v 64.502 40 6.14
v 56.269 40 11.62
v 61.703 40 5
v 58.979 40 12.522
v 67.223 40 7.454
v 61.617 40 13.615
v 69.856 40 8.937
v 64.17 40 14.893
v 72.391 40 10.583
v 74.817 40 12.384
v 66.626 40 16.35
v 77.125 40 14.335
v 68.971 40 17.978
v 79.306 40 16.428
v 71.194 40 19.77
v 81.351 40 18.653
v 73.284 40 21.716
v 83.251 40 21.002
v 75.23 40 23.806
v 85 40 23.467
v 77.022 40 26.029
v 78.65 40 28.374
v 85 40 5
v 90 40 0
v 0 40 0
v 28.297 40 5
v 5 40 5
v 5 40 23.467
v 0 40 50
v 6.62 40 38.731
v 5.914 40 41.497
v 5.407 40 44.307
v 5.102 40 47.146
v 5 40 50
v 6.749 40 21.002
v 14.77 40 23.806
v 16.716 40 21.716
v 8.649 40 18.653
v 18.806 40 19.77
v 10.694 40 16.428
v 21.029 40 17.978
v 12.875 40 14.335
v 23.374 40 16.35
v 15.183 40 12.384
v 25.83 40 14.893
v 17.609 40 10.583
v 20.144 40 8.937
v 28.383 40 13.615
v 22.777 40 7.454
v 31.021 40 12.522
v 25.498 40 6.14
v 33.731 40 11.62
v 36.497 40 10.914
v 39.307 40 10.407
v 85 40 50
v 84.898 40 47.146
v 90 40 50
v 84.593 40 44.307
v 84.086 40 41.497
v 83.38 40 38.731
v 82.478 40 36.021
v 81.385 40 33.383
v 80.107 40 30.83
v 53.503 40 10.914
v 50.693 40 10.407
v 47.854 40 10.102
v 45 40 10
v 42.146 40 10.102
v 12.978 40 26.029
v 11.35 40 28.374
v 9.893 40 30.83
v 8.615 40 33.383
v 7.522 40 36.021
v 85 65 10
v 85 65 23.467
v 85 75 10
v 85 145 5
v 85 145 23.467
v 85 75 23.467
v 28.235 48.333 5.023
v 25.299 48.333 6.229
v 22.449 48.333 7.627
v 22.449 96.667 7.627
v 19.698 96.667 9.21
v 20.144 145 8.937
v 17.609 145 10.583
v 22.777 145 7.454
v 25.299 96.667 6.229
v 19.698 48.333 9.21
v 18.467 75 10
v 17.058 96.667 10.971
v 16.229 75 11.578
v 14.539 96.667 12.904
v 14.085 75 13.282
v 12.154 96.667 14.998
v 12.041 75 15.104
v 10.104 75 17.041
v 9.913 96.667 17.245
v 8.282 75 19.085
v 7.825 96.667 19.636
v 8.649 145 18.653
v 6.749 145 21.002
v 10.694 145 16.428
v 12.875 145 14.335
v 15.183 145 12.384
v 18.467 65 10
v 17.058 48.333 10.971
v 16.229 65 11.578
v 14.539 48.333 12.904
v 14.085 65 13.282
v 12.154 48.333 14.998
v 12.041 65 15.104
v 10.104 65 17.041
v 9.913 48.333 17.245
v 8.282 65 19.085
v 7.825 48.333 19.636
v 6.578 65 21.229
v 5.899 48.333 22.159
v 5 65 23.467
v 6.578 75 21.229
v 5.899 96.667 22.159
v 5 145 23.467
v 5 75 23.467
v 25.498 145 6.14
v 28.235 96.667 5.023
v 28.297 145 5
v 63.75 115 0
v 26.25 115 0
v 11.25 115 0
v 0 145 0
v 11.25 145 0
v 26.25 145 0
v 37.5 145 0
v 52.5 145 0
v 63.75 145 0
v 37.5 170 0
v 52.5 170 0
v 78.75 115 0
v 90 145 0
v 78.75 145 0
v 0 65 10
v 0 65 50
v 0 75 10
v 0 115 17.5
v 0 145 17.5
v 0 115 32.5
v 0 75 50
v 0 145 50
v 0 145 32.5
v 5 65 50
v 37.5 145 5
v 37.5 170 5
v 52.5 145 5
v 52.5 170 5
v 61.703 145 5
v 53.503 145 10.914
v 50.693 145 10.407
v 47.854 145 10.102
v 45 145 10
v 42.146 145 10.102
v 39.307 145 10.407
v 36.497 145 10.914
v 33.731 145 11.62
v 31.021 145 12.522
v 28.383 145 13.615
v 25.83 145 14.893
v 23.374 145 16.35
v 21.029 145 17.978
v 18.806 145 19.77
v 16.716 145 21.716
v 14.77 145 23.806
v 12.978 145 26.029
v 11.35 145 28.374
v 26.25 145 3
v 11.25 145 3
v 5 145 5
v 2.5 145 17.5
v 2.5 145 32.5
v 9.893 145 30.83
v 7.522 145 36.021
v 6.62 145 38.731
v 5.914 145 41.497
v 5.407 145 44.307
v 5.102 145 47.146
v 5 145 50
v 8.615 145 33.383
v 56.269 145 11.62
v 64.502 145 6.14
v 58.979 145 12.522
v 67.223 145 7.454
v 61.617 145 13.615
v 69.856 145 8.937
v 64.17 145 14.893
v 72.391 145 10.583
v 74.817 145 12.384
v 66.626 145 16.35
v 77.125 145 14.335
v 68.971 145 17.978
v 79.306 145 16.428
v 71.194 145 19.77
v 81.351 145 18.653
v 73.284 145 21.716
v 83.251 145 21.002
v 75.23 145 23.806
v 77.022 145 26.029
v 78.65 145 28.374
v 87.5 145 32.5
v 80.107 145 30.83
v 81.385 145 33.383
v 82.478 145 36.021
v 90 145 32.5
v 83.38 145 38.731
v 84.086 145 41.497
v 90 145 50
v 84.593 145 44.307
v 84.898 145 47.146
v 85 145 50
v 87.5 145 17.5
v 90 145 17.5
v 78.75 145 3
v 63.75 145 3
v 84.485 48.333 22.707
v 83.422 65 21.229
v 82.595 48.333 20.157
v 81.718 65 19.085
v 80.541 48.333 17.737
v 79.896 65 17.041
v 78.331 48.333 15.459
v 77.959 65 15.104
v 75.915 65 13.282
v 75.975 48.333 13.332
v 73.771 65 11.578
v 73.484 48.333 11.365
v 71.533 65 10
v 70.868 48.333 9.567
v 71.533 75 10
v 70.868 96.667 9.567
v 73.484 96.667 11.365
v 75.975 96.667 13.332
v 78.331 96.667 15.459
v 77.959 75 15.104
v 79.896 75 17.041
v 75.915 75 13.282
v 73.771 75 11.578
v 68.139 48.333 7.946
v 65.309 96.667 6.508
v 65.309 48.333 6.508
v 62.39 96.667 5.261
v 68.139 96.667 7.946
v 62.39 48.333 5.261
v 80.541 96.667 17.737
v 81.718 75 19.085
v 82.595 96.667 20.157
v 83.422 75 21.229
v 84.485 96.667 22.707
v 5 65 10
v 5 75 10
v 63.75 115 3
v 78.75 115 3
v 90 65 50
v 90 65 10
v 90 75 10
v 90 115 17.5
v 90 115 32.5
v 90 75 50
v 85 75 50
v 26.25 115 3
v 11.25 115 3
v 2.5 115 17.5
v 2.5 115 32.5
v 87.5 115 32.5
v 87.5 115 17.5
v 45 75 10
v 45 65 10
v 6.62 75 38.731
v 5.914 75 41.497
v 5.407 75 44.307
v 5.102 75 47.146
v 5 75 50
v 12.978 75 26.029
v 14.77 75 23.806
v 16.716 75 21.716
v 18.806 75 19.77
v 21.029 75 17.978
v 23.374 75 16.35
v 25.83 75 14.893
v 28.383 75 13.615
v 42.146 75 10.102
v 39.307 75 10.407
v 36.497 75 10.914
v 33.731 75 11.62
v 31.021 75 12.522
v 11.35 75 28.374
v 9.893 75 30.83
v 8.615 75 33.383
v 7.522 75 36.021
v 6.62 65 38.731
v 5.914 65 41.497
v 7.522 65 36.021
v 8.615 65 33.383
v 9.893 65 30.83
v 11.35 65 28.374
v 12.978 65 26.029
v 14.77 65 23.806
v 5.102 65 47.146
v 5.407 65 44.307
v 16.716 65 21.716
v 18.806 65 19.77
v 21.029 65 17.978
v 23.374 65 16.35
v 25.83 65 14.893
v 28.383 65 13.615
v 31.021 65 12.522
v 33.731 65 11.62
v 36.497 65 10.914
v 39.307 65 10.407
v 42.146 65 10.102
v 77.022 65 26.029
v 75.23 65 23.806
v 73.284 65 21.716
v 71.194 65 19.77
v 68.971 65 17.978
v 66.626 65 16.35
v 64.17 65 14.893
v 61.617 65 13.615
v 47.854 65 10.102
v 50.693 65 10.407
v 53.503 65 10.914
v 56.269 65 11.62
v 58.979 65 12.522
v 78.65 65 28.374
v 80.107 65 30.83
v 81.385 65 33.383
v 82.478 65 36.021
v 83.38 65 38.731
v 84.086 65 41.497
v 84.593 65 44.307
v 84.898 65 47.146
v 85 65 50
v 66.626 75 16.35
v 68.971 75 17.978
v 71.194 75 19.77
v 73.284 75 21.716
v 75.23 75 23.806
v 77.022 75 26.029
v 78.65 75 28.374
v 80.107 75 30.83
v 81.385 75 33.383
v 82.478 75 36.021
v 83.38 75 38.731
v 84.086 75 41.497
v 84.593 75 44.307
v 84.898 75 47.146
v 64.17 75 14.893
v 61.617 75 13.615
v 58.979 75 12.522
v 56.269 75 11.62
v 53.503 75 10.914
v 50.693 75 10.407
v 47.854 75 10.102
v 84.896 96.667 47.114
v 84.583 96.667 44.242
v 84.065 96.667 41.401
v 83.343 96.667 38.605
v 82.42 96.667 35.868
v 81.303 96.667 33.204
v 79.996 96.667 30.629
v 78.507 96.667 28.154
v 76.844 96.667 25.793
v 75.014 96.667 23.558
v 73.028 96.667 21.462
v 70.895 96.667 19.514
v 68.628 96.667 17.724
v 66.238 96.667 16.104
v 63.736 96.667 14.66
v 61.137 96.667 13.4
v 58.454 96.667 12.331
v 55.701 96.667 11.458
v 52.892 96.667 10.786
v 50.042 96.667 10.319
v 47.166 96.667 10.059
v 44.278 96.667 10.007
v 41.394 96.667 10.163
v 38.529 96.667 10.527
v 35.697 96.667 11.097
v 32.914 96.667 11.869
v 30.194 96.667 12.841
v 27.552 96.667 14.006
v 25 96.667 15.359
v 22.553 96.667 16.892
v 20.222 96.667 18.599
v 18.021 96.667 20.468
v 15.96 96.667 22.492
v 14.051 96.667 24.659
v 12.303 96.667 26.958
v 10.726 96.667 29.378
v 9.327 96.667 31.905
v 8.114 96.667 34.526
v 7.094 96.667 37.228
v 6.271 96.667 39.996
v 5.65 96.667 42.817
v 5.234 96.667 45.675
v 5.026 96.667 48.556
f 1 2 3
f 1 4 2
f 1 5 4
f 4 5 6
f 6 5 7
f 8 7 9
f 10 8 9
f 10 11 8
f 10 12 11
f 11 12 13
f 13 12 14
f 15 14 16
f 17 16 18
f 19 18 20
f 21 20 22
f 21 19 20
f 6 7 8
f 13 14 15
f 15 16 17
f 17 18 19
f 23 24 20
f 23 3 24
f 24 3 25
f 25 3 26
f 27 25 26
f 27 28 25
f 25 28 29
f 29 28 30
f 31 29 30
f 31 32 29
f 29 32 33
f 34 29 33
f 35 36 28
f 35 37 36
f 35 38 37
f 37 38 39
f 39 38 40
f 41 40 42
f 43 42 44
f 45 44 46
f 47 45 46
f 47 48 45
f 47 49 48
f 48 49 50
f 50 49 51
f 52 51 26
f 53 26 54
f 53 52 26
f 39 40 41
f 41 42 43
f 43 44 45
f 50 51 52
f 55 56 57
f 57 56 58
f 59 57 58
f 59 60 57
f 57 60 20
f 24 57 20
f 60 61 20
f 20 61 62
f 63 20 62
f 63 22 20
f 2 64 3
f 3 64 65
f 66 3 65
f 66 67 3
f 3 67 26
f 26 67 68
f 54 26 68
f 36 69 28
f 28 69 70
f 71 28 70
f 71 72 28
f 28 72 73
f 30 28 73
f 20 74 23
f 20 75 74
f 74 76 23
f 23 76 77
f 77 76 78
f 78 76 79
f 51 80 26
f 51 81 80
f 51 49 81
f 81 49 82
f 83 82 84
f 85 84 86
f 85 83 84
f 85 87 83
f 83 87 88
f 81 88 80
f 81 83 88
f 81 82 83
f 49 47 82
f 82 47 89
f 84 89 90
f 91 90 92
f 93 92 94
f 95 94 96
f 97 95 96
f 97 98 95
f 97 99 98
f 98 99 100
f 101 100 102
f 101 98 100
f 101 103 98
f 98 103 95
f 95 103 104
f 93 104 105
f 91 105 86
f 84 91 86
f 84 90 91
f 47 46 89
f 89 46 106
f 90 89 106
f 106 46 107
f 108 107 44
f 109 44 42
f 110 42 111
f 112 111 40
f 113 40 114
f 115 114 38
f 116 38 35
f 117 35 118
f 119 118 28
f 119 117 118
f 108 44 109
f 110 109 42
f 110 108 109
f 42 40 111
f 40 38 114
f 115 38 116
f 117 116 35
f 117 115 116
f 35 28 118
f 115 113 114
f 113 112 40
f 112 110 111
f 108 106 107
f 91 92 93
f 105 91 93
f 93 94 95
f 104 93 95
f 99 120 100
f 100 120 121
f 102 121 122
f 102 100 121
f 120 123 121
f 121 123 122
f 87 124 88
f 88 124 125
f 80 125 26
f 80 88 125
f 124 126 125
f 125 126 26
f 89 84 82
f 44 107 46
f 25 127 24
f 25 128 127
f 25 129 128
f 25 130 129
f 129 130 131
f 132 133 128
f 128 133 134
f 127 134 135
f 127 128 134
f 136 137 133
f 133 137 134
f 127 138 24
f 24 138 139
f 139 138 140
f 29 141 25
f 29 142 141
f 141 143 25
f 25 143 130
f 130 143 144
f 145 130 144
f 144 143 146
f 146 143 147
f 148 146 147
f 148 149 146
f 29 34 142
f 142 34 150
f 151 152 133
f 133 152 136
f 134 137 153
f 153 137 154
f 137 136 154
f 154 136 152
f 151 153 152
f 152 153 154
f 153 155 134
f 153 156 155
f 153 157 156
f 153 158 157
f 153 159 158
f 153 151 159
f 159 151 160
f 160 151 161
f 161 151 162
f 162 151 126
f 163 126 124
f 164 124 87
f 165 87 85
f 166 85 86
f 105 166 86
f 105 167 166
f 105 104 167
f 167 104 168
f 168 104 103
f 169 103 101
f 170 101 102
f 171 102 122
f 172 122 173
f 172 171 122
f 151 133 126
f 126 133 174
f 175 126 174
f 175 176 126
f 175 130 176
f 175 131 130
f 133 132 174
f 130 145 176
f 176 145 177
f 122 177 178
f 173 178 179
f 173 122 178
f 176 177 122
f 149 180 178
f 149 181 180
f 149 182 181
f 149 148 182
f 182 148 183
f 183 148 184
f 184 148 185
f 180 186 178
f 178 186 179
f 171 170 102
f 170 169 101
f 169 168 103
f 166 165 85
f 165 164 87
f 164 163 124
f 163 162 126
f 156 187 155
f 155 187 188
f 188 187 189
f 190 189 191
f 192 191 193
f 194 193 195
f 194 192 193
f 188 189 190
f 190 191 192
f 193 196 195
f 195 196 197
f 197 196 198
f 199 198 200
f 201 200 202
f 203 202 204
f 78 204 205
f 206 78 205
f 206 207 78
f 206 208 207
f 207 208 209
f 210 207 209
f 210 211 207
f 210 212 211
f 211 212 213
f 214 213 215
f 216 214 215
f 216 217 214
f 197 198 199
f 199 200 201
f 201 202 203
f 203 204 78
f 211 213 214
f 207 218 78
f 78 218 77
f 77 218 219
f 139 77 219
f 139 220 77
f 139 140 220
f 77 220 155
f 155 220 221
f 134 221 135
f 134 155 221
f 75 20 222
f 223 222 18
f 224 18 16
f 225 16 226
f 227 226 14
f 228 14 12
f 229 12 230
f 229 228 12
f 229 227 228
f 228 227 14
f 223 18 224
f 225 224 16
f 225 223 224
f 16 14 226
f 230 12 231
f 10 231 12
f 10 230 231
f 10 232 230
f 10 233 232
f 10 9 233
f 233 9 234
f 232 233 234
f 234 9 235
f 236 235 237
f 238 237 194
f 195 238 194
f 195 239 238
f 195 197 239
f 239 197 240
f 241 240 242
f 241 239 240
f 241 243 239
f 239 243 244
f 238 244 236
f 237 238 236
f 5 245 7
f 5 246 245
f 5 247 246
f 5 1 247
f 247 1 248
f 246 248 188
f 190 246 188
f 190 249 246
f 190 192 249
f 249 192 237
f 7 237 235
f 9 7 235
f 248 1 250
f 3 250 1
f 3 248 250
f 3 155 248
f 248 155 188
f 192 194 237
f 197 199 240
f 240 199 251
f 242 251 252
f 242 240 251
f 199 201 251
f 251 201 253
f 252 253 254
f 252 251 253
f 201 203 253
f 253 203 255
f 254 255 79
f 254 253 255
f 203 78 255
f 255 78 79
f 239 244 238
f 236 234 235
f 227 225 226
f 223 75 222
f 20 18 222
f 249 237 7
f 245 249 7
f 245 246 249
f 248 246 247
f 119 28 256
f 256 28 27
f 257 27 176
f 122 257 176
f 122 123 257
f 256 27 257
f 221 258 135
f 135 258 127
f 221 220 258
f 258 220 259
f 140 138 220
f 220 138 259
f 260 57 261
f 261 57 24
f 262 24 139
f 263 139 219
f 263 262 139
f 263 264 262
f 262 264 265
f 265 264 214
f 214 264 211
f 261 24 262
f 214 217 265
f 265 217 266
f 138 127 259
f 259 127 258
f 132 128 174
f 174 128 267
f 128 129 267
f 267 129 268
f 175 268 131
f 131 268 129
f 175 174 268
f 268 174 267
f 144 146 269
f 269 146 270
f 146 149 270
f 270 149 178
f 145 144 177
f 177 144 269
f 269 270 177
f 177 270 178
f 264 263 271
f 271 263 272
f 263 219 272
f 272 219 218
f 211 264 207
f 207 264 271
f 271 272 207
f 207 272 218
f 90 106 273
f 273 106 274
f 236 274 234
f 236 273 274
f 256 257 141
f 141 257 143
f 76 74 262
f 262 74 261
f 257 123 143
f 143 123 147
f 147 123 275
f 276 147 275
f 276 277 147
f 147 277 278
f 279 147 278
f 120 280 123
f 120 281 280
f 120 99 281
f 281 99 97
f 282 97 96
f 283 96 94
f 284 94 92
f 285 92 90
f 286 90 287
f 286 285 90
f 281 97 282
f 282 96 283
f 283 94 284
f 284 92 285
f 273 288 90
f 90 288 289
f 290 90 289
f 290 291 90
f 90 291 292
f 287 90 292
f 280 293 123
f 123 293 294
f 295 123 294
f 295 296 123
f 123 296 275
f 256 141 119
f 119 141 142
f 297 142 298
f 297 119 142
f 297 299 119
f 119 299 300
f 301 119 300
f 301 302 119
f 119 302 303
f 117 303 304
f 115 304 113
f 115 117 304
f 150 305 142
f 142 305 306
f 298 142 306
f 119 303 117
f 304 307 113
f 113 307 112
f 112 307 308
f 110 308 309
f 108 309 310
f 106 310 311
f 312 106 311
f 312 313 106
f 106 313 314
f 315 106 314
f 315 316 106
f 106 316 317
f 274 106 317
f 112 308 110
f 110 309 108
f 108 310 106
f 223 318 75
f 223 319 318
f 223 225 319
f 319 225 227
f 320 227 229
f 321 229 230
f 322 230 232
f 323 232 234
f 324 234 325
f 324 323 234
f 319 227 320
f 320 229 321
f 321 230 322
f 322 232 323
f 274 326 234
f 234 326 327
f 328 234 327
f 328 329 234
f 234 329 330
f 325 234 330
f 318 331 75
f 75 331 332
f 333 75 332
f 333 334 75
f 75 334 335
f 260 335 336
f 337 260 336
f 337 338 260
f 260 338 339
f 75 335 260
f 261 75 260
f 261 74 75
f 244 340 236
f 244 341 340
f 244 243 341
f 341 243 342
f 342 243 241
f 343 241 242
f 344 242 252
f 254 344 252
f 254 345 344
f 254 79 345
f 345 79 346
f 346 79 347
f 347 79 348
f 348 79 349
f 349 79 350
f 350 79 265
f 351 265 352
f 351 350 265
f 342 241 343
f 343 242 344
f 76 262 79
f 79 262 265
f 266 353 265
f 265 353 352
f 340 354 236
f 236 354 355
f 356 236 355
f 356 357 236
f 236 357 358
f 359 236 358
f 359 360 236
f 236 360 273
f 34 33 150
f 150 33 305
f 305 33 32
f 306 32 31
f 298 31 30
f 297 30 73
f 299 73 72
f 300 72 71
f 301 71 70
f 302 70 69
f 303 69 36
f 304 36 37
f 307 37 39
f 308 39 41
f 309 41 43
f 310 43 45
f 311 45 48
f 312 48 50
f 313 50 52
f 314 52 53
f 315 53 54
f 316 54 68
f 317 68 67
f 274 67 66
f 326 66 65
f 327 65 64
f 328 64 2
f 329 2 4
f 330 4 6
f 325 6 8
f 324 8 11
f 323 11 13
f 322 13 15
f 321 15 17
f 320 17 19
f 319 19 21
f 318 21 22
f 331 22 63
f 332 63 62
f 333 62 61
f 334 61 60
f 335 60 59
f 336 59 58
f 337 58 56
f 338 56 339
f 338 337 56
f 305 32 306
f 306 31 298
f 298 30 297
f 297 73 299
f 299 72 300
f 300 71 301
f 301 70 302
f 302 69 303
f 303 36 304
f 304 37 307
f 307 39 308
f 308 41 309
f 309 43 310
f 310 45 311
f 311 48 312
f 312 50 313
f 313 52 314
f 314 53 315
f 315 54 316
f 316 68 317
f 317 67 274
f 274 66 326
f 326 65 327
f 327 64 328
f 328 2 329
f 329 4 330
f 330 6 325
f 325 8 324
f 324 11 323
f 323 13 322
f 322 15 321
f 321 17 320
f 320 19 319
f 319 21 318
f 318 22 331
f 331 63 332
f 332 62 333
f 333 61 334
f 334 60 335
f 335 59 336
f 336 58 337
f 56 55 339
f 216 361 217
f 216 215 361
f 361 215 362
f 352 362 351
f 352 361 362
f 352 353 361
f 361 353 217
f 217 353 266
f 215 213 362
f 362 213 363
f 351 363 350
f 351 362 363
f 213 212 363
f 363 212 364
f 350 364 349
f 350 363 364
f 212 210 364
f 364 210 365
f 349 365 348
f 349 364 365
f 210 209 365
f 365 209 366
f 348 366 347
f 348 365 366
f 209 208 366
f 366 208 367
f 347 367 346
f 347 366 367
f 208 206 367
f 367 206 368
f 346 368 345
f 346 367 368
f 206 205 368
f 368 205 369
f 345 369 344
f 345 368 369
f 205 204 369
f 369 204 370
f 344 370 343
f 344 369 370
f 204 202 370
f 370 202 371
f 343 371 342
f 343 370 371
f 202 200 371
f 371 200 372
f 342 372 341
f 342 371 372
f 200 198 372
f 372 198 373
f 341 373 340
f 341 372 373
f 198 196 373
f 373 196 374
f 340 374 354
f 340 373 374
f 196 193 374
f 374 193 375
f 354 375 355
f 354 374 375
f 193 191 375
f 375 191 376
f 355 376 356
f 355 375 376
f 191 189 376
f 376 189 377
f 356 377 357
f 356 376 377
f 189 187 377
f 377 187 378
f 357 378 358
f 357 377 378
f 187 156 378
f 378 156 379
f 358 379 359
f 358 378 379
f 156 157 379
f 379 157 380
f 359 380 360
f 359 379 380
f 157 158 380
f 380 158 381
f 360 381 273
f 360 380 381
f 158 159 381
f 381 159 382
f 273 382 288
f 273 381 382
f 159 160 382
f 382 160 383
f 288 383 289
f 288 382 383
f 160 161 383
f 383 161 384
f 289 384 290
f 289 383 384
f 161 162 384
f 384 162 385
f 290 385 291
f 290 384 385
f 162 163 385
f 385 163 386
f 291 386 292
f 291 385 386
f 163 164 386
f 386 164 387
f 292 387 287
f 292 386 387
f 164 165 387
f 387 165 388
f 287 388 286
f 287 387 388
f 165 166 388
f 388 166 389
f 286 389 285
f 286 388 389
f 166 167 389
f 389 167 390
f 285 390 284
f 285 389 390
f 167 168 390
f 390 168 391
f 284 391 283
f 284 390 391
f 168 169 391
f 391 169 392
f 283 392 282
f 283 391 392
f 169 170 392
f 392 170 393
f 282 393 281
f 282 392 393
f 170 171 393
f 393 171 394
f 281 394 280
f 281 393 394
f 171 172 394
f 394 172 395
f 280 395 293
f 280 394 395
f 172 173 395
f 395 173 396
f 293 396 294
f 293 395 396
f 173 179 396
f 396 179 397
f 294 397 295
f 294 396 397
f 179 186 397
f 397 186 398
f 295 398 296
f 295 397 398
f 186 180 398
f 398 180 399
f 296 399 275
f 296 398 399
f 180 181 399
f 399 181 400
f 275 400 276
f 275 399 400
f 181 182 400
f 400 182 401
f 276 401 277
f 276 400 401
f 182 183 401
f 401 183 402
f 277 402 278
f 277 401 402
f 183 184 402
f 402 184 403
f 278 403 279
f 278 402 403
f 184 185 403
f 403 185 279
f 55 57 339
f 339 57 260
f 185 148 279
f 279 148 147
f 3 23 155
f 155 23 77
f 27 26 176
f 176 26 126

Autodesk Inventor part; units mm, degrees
ref_plane "YZ Plane" through (0, 0, 0) normal (1, 0, 0) x (0, 1, 0)
ref_plane "XZ Plane" through (0, 0, 0) normal (0, 1, 0) x (-1, 0, 0)
ref_plane "XY Plane" through (0, 0, 0) normal (0, 0, 1) x (1, 0, 0)
sketch "スケッチ1" plane through (0, 0, 0) normal (0, 1, 0) x (-1, 0, 0)
  line L0 (0, 0) -> (-90, 0)
  line L1 (-90, 0) -> (-90, 50)
  line L2 (0, 50) -> (0, 0)
  line L3 (0, 0) -> (-5, 0)
  line L4 (-5, 0) -> (-5, 50)
  line L5 (-5, 0) -> (-90, 0)
  line L6 (-90, 0) -> (-85, 0)
  line L7 (-85, 0) -> (-85, 50)
  arc A0 (-85, 50) -> (-5, 50) centre (-45, 50) ccw
  line L8 (0, 0) -> (0, 10)
  line L9 (0, 10) -> (-90, 10)
  circle A1 centre (-45, 50) radius 45
  line L10 (-90, 5) -> (0, 5)
  line L11 (-90, 50) -> (-85, 50)
  line L12 (-5, 50) -> (0, 50)
  line L13 (0, 0) -> (-90, 0)
  line L14 (-90, 0) -> (-90, 5)
  line L15 (-90, 5) -> (0, 5)
  line L16 (0, 5) -> (0, 0)
  dimension "d0" = 90
  dimension "d1" = 50
  dimension "d2" = 5
  dimension "d3" = 85
  dimension "d4" = 5
  dimension "d5" = 80
  dimension "d6" = 10
  dimension "d7" = 90
extrude "押し出し1" add sketch "スケッチ1" along normal blind 230 contours L0 L4 L10 L2 | L0 L7 L10 L4 | L10 L4 L9 L2 | L0 L1 L10 L7 | L10 A1 L9 L4 | L9 L4 A1 L2 | L10 L1 L9 L7 | L7 L9 A1 L10 | L9 A1 L4 | A1 L9 | A1 L4 L12 | L9 L1 A1 L7 | L7 A1 L9 | A1 L9 A0 L4 | A1 L7 A0 L9 | L11 L7 A1
sketch "スケッチ2" plane through (0, 0, 0) normal (0, -1, 0) x (1, 0, 0)
  line L0 (0, 0) -> (0, 50) projected
  line L1 (90, 0) -> (0, 0) projected
  line L2 (90, 50) -> (90, 0) projected
  line L3 (85, 50) -> (90, 50) projected
  arc A0 (5, 50) -> (85, 50) centre (45, 50) ccw projected
  line L4 (0, 50) -> (5, 50) projected
  arc A1 (5, 23.467) -> (85, 23.467) centre (45, 50) ccw
  line L5 (0, 5) -> (90, 5)
  line L6 (5, 23.467) -> (5, 5)
  line L7 (85, 23.467) -> (85, 5)
  dimension "d29" = 48
extrude "押し出し2" cut sketch "スケッチ2" against normal blind 225 contours L6 A1 L5 | L5 A1 L7
sketch "スケッチ3" plane through (0, 230, 0) normal (0, 1, 0) x (1, 0, 0)
  arc A0 (85, -50) -> (5, -50) centre (45, -50) ccw projected
  line L0 (90, -50) -> (90, 0) projected
  line L1 (0, -50) -> (5, -50) projected
  arc A1 (85, -50) -> (5, -50) centre (45, -50) ccw
  line L2 (5, -50) -> (85, -50)
extrude "押し出し3" add sketch "スケッチ3" against normal blind 5
sketch "スケッチ4" plane through (90, 0, 50) normal (1, 0, 0) x (0, 0, -1)
  line L0 (0, 0) -> (50, 0) projected
  line L1 (0, 0) -> (0, 230) projected
  line L2 (25, 0) -> (25, 65)
  line L3 (25, 65) -> (25, 75)
  line L4 (25, 75) -> (25, 215)
  line L5 (25, 215) -> (25, 225)
  line L6 (0, 65) -> (40, 65)
  line L7 (40, 65) -> (40, 75)
  line L8 (40, 75) -> (0, 75)
  line L9 (0, 75) -> (0, 65)
  line L10 (0, 215) -> (40, 215)
  line L11 (40, 215) -> (40, 225)
  line L12 (40, 225) -> (0, 225)
  line L13 (0, 225) -> (0, 215)
  dimension "d16" = 65
  dimension "d17" = 10
  dimension "d18" = 140
  dimension "d19" = 10
  dimension "d20" = 40
extrude "押し出し4" cut sketch "スケッチ4" against normal blind 90 contours L1 L8 L3 L6 | L3 L8 L7 L6 | L1 L12 L5 L10 | L5 L12 L11 L10
sketch "スケッチ6" plane through (90, 0, 50) normal (1, 0, 0) x (0, 0, -1)
  line L0 (0, 230) -> (50, 230) projected
  line L1 (50, 230) -> (37.5, 251.6506)
  line L2 (50, 230) -> (110, 230) construction
  line L3 (0, 230) -> (37.5, 251.6506)
  line L4 (0, 230) -> (43.3013, 230) construction
  dimension "d32" = 120
  dimension "d33" = 30
extrude "押し出し6" add sketch "スケッチ6" against normal blind 90
sketch "スケッチ9" plane through (0, 0, 0) normal (-1, 0, 0) x (0, 0, 1)
  line L0 (10, 225) -> (50, 225) projected
  line L1 (50, 225) -> (50, 230) projected
  line L2 (50, 230) -> (12.5, 251.6506) projected
  line L3 (12.5, 251.6506) -> (0, 230) projected
  line L4 (0, 0) -> (0, 230) projected
  line L5 (0, 0) -> (50, 0) projected
  line L6 (50, 0) -> (50, 65) projected
  line L7 (50, 65) -> (10, 65) projected
  line L8 (10, 65) -> (10, 75) projected
  line L9 (10, 75) -> (50, 75) projected
  line L10 (50, 75) -> (50, 215) projected
  line L11 (50, 215) -> (10, 215) projected
  line L12 (10, 215) -> (10, 225) projected
  line L13 (12.5, 251.6506) -> (0, 230)
  line L14 (0, 230) -> (-132.7906, 0)
  line L15 (0, 145) -> (-49.0748, 145)
  line L16 (0, 115) -> (-66.3953, 115)
  dimension "d45" = 30
sketch "スケッチ10" plane through (0, 0, 0) normal (-1, 0, 0) x (0, 0, 1)
  line L0 (10, 225) -> (50, 225) projected
  line L1 (50, 225) -> (50, 230) projected
  line L2 (50, 230) -> (12.5, 251.6506) projected
  line L3 (12.5, 251.6506) -> (0, 230) projected
  line L4 (0, 0) -> (0, 230) projected
  line L5 (0, 0) -> (50, 0) projected
  line L6 (50, 0) -> (50, 65) projected
  line L7 (50, 65) -> (10, 65) projected
  line L8 (10, 65) -> (10, 75) projected
  line L9 (10, 75) -> (50, 75) projected
  line L10 (50, 75) -> (50, 215) projected
  line L11 (50, 215) -> (10, 215) projected
  line L12 (10, 215) -> (10, 225) projected
  line L13 (12.5, 251.6506) -> (-87.5, 78.4456)
  line L14 (-87.5, 78.4456) -> (50, 0)
sketch "スケッチ11" plane through (90, 230, 0) normal (0, 0.5, -0.866) x (-1, 0, 0)
  line L0 (0, 25) -> (90, 25) projected
  line L1 (45, 25) -> (45, 15)
  line L2 (45, 15) -> (60, 15)
  line L3 (60, 15) -> (30, 15)
  point P0 (90, -199.1858)
  dimension "d49" = 10
  dimension "d50" = 15
  dimension "d51" = 30
hole "穴1" at (45, 242.9904, 7.5) at (30, 242.9904, 7.5) at (60, 242.9904, 7.5) direction (0, -0.5, 0.866) diameter 2.5 depth 8 tip angle 118
sketch "スケッチ12" plane through (90, 0, 50) normal (1, 0, 0) x (0, 0, -1)
  line L0 (50, 0) -> (50, 230) projected
  line L1 (40, 225) -> (40, 215) projected
  line L2 (0, 215) -> (0, 75)
  line L3 (0, 145) -> (50, 145)
  line L4 (32.5, 175) -> (17.5, 175)
  line L5 (17.5, 175) -> (17.5, 115)
  line L6 (17.5, 115) -> (32.5, 115)
  line L7 (32.5, 115) -> (32.5, 175)
  line L8 (32.5, 175) -> (17.5, 115) construction
  line L9 (17.5, 175) -> (32.5, 115) construction
  line L10 (17.5, 145) -> (32.5, 145)
  line L11 (32.5, 145) -> (32.5, 115)
  line L12 (32.5, 115) -> (17.5, 115)
  line L13 (17.5, 115) -> (17.5, 145)
  point P0 (25, 145)
  dimension "d59" = 15
  dimension "d60" = 60
extrude "押し出し8" cut sketch "スケッチ12" against normal blind 2.5 contours L3 L7 L6 L5
sketch "スケッチ13" plane through (0, 0, 0) normal (-1, 0, 0) x (0, 0, 1)
  line L0 (0, 0) -> (0, 230) projected
  line L1 (50, 75) -> (50, 215) projected
  line L2 (50, 145) -> (0, 145)
  line L3 (17.5, 175) -> (32.5, 175)
  line L4 (32.5, 175) -> (32.5, 115)
  line L5 (32.5, 115) -> (17.5, 115)
  line L6 (17.5, 115) -> (17.5, 175)
  line L7 (17.5, 175) -> (32.5, 115) construction
  line L8 (32.5, 175) -> (17.5, 115) construction
  line L9 (17.5, 145) -> (32.5, 145)
  line L10 (32.5, 145) -> (32.5, 115)
  line L11 (32.5, 115) -> (17.5, 115)
  line L12 (17.5, 115) -> (17.5, 145)
  point P0 (25, 145)
  dimension "d63" = 15
  dimension "d64" = 60
extrude "押し出し9" cut sketch "スケッチ13" against normal blind 2.5 contours L4 L5 L6 L2
sketch "スケッチ14" plane through (90, 0, 0) normal (0, 0, -1) x (-1, 0, 0)
  line L0 (90, 0) -> (90, 230) projected
  line L1 (0, 0) -> (0, 230) projected
  line L2 (0, 145) -> (90, 145)
  line L3 (37.5, 175) -> (52.5, 175)
  line L4 (52.5, 175) -> (52.5, 115)
  line L5 (52.5, 115) -> (37.5, 115)
  line L6 (37.5, 115) -> (37.5, 175)
  line L7 (37.5, 175) -> (52.5, 115) construction
  line L8 (52.5, 175) -> (37.5, 115) construction
  line L9 (37.5, 145) -> (52.5, 145)
  line L10 (52.5, 145) -> (52.5, 175)
  line L11 (52.5, 175) -> (37.5, 175)
  line L12 (37.5, 175) -> (37.5, 145)
  point P0 (45, 145)
  dimension "d67" = 15
  dimension "d70" = 30
extrude "押し出し10" cut sketch "スケッチ14" against normal blind 2.5 contours L6 L3 L4 L2
sketch "スケッチ16" plane through (90, 0, 0) normal (0, 0, -1) x (-1, 0, 0)
  line L0 (52.5, 175) -> (52.5, 145) projected
  line L1 (52.5, 145) -> (37.5, 145) projected
  line L2 (37.5, 145) -> (37.5, 175) projected
  line L3 (90, 0) -> (90, 230) projected
  line L4 (0, 0) -> (0, 230) projected
  line L5 (0, 145) -> (90, 145)
  line L6 (0, 160) -> (37.5, 160)
  line L7 (52.5, 160) -> (90, 160)
  line L8 (18.75, 160) -> (18.75, 145)
  line L9 (71.25, 145) -> (71.25, 160)
  line L10 (11.25, 175) -> (26.25, 175)
  line L11 (26.25, 175) -> (26.25, 115)
  line L12 (26.25, 115) -> (11.25, 115)
  line L13 (11.25, 115) -> (11.25, 175)
  line L14 (11.25, 175) -> (26.25, 115) construction
  line L15 (26.25, 175) -> (11.25, 115) construction
  line L16 (11.25, 115) -> (26.25, 115)
  line L17 (26.25, 115) -> (26.25, 175)
  line L18 (26.25, 175) -> (11.25, 175)
  line L19 (11.25, 175) -> (11.25, 115)
  line L20 (45, 145) -> (45, 125)
  line L21 (78.75, 175) -> (63.75, 175)
  line L22 (63.75, 115) -> (78.75, 115)
  line L23 (78.75, 175) -> (78.75, 115)
  line L24 (63.75, 115) -> (63.75, 175)
  line L25 (63.75, 175) -> (78.75, 175)
  line L26 (78.75, 175) -> (78.75, 115)
  line L27 (78.75, 115) -> (63.75, 115)
  line L28 (63.75, 115) -> (63.75, 175)
  line L29 (11.25, 115) -> (26.25, 115)
  line L30 (26.25, 115) -> (26.25, 175)
  line L31 (26.25, 175) -> (11.25, 175)
  line L32 (11.25, 175) -> (11.25, 115)
  dimension "d71" = 15
  dimension "d72" = 60
  dimension "d73" = 20
extrude "押し出し11" cut sketch "スケッチ16" against normal blind 3 contours L24 L21 L23 L7 | L7 L9 L5 L24 | L5 L23 L22 L24 | L7 L23 L5 L9 | L11 L12 L13 L5 | L5 L8 L6 L11 | L6 L13 L10 L11 | L5 L13 L6 L8
sketch "スケッチ17" plane through (37.5, 145, 0) normal (0, 1, 0) x (1, 0, 0)
  line L0 (-57.7643, 16.522) -> (69.053, 16.522)
  line L1 (69.053, 16.522) -> (69.053, -65.9751)
  line L2 (69.053, -65.9751) -> (-57.7643, -65.9751)
  line L3 (-57.7643, -65.9751) -> (-57.7643, 16.522)
  point P0 (-37.5, 0)
extrude "押し出し12" cut sketch "スケッチ17" along normal blind 120
sketch "スケッチ18" plane through (90, 0, 0) normal (0, 0, -1) x (-1, 0, 0)
  line L0 (63.75, 145) -> (26.25, 145) projected
  line L1 (37.5, 170) -> (52.5, 170)
  line L2 (52.5, 170) -> (52.5, 120)
  line L3 (52.5, 120) -> (37.5, 120)
  line L4 (37.5, 120) -> (37.5, 170)
  line L5 (37.5, 170) -> (52.5, 120) construction
  line L6 (52.5, 170) -> (37.5, 120) construction
  point P0 (45, 145)
  dimension "d78" = 15
  dimension "d79" = 50
extrude "押し出し13" add sketch "スケッチ18" against normal blind 5
sketch "スケッチ19" plane through (0, 0, 0) normal (0, -1, 0) x (1, 0, 0)
  line L0 (0, 0) -> (0, 50) projected
  line L1 (90, 0) -> (0, 0) projected
  line L2 (90, 50) -> (90, 0) projected
  line L3 (85, 50) -> (90, 50) projected
  arc A0 (5, 50) -> (85, 50) centre (45, 50) ccw projected
  line L4 (0, 50) -> (5, 50) projected
  line L5 (-25.7833, 110.7871) -> (115.7833, 110.7871)
  line L6 (115.7833, 110.7871) -> (115.7833, -10.7871)
  line L7 (115.7833, -10.7871) -> (-25.7833, -10.7871)
  line L8 (-25.7833, -10.7871) -> (-25.7833, 110.7871)
  line L9 (-25.7833, 110.7871) -> (115.7833, -10.7871) construction
  line L10 (115.7833, 110.7871) -> (-25.7833, -10.7871) construction
extrude "押し出し14" cut sketch "スケッチ19" against normal blind 40 contours L0 L4 A0 L3 L2 L1 | L5 L6 L7 L8
properties part number "知能ロボコン発射台２.2" material "ABS プラスチック"
